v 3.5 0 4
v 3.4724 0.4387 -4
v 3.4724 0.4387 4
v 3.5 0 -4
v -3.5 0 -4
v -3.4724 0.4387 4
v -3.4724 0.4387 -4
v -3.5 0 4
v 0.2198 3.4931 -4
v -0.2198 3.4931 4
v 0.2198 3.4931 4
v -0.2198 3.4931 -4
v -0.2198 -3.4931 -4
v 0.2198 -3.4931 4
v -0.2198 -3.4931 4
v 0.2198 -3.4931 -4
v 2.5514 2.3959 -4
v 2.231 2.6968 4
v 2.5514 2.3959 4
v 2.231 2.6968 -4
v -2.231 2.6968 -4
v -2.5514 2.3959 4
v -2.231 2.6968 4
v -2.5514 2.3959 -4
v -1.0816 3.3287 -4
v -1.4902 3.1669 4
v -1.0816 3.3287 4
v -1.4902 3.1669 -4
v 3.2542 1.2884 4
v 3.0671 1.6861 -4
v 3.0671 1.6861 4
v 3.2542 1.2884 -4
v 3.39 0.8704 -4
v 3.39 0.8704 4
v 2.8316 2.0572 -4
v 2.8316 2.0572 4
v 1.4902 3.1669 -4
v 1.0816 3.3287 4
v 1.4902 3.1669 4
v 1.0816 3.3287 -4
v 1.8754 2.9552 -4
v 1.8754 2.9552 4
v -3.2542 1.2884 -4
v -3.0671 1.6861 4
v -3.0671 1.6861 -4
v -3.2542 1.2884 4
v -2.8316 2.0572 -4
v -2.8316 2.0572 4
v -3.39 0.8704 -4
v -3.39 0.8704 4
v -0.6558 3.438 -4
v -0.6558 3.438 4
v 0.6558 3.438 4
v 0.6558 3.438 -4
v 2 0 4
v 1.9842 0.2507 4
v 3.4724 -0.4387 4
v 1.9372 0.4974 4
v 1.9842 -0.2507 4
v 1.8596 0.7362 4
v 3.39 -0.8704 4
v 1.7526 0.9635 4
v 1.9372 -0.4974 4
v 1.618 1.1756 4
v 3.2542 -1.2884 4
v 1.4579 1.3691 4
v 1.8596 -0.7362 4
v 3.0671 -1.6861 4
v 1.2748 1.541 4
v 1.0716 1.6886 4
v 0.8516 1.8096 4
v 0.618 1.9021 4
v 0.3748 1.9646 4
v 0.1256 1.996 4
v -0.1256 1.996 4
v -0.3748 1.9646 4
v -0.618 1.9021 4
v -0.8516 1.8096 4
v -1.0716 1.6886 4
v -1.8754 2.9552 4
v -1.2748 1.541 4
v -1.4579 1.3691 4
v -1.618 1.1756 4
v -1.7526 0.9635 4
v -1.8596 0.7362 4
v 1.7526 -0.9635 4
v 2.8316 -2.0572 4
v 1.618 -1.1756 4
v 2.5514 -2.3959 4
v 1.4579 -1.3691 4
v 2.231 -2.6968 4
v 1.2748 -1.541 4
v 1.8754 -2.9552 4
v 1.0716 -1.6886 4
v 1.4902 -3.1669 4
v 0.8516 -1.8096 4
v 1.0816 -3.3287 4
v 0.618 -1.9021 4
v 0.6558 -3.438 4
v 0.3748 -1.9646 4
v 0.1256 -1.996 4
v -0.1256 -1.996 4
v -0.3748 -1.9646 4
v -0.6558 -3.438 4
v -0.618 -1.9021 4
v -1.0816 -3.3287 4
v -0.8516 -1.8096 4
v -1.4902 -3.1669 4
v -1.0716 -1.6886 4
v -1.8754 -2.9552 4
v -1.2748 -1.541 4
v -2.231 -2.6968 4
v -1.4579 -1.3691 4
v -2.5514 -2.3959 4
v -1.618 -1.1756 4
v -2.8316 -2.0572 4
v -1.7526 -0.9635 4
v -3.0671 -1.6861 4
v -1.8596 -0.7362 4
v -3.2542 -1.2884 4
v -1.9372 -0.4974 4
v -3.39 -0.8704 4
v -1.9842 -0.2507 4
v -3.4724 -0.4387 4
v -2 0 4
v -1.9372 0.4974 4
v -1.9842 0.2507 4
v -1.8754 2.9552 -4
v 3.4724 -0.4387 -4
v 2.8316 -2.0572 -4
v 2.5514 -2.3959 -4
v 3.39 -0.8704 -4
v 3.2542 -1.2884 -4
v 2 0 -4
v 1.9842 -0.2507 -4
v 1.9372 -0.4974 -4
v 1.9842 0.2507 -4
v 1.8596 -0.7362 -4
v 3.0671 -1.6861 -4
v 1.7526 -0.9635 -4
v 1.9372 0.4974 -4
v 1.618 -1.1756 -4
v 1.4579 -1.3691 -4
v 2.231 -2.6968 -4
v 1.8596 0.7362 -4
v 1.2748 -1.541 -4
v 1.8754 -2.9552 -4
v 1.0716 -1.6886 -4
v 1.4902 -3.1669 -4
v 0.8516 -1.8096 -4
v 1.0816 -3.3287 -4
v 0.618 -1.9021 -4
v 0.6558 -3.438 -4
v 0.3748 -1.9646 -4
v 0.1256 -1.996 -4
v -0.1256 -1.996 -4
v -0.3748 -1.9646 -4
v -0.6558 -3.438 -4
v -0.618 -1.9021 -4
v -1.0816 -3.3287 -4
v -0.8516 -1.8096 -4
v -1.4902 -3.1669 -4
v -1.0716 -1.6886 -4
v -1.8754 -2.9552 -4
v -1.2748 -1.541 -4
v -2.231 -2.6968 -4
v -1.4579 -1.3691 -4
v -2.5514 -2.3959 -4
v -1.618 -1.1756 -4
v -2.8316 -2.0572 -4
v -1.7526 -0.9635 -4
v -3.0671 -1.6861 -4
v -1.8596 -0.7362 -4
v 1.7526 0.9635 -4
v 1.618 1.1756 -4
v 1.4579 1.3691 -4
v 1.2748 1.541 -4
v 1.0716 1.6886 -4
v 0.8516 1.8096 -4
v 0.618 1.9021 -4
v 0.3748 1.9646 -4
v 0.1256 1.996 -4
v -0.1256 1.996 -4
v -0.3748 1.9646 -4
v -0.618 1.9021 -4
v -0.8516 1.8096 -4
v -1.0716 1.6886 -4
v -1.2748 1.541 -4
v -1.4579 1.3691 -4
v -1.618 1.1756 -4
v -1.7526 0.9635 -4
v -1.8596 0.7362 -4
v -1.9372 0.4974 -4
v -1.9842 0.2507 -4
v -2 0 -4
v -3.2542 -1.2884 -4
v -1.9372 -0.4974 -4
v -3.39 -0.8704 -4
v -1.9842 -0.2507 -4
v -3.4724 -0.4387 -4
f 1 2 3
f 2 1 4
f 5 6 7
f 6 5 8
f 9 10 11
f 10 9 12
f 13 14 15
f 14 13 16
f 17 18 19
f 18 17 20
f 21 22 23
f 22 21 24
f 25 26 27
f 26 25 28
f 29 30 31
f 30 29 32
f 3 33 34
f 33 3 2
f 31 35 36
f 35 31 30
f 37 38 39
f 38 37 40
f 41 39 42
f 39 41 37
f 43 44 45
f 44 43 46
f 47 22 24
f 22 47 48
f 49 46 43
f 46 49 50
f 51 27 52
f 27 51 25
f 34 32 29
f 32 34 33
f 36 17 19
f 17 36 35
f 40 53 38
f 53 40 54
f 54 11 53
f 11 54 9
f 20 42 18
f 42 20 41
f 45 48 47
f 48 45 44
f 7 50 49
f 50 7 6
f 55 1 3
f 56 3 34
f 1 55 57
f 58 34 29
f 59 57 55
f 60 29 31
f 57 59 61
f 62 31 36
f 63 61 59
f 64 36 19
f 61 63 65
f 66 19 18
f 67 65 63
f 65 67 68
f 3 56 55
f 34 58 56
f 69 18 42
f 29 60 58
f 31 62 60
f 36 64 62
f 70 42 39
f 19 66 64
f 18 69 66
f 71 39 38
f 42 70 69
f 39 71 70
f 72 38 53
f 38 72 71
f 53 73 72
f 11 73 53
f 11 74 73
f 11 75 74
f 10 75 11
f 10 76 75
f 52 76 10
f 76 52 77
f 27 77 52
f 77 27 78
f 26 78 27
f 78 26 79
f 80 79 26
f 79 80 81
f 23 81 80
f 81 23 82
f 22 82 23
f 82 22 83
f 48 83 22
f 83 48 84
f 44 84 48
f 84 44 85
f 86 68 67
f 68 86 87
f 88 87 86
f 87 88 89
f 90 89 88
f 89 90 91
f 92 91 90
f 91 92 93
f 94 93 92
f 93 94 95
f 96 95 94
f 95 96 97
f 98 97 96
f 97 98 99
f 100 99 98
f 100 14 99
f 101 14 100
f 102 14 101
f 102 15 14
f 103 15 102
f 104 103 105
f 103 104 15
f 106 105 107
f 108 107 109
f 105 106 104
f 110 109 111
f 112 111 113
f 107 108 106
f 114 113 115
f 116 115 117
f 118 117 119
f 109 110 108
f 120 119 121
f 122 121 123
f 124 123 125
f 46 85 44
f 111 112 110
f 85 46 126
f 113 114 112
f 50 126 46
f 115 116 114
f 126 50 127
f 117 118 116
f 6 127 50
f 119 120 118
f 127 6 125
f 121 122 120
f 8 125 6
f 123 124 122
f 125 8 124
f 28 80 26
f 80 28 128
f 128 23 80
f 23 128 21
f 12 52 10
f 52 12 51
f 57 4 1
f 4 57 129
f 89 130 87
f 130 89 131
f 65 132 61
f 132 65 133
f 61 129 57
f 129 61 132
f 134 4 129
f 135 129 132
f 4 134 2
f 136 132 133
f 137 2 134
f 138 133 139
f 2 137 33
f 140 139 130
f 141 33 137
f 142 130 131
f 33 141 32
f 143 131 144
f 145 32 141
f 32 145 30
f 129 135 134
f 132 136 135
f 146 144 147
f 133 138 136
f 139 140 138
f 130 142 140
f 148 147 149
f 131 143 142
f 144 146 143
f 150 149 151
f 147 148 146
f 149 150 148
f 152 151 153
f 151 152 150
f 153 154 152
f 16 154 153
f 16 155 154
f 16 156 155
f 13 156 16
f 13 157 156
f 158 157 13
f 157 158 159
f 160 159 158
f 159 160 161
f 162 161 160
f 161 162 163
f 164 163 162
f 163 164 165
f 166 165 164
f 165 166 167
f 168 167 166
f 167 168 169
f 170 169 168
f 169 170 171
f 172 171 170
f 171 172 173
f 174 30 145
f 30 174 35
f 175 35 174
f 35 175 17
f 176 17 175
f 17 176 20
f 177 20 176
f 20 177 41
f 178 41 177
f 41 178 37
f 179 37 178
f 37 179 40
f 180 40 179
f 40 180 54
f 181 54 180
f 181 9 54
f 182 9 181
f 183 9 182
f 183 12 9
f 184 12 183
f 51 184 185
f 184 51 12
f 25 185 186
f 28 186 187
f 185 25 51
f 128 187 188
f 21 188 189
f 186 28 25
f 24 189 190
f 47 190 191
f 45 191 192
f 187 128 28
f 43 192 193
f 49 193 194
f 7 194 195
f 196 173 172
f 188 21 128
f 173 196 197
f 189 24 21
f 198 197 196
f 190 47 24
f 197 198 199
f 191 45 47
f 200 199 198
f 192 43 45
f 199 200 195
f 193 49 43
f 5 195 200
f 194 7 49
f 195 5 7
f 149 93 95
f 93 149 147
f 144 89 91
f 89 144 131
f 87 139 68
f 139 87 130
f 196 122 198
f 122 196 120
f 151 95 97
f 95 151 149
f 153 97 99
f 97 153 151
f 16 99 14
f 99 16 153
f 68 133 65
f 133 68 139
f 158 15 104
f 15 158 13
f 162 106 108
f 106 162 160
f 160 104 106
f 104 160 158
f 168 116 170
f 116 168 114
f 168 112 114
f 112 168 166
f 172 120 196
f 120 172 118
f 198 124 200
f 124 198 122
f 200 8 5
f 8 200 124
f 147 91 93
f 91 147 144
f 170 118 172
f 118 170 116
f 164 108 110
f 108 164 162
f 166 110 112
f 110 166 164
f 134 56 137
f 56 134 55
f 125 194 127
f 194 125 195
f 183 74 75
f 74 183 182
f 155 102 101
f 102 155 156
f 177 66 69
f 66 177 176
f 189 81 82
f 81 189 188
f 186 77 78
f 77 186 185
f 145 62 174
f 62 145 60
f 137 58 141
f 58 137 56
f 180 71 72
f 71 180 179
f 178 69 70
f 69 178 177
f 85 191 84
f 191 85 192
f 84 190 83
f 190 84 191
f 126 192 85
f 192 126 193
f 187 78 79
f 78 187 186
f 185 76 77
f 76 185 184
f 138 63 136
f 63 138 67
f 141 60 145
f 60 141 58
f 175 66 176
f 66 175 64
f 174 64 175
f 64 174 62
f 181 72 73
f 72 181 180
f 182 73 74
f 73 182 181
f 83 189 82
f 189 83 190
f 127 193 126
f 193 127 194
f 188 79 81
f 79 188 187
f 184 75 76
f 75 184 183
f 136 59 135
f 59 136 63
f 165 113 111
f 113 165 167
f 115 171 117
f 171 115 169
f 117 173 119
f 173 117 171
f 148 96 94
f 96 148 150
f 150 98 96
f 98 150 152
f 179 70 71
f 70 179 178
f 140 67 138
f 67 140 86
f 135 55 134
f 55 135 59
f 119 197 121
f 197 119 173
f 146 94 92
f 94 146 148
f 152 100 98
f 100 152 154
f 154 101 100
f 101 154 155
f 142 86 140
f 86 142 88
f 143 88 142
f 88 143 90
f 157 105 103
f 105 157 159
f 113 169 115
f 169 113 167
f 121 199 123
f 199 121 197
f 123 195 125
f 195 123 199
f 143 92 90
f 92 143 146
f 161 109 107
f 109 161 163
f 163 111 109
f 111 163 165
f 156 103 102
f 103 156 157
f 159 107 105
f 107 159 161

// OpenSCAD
$fn = 50;


difference() {
	union() {
		translate(v = [0, 0, -4.0000000000]) {
			cylinder(h = 8, r = 3.5000000000);
		}
	}
	union() {
		translate(v = [0, 0, -100.0000000000]) {
			cylinder(h = 200, r = 2);
		}
	}
}
